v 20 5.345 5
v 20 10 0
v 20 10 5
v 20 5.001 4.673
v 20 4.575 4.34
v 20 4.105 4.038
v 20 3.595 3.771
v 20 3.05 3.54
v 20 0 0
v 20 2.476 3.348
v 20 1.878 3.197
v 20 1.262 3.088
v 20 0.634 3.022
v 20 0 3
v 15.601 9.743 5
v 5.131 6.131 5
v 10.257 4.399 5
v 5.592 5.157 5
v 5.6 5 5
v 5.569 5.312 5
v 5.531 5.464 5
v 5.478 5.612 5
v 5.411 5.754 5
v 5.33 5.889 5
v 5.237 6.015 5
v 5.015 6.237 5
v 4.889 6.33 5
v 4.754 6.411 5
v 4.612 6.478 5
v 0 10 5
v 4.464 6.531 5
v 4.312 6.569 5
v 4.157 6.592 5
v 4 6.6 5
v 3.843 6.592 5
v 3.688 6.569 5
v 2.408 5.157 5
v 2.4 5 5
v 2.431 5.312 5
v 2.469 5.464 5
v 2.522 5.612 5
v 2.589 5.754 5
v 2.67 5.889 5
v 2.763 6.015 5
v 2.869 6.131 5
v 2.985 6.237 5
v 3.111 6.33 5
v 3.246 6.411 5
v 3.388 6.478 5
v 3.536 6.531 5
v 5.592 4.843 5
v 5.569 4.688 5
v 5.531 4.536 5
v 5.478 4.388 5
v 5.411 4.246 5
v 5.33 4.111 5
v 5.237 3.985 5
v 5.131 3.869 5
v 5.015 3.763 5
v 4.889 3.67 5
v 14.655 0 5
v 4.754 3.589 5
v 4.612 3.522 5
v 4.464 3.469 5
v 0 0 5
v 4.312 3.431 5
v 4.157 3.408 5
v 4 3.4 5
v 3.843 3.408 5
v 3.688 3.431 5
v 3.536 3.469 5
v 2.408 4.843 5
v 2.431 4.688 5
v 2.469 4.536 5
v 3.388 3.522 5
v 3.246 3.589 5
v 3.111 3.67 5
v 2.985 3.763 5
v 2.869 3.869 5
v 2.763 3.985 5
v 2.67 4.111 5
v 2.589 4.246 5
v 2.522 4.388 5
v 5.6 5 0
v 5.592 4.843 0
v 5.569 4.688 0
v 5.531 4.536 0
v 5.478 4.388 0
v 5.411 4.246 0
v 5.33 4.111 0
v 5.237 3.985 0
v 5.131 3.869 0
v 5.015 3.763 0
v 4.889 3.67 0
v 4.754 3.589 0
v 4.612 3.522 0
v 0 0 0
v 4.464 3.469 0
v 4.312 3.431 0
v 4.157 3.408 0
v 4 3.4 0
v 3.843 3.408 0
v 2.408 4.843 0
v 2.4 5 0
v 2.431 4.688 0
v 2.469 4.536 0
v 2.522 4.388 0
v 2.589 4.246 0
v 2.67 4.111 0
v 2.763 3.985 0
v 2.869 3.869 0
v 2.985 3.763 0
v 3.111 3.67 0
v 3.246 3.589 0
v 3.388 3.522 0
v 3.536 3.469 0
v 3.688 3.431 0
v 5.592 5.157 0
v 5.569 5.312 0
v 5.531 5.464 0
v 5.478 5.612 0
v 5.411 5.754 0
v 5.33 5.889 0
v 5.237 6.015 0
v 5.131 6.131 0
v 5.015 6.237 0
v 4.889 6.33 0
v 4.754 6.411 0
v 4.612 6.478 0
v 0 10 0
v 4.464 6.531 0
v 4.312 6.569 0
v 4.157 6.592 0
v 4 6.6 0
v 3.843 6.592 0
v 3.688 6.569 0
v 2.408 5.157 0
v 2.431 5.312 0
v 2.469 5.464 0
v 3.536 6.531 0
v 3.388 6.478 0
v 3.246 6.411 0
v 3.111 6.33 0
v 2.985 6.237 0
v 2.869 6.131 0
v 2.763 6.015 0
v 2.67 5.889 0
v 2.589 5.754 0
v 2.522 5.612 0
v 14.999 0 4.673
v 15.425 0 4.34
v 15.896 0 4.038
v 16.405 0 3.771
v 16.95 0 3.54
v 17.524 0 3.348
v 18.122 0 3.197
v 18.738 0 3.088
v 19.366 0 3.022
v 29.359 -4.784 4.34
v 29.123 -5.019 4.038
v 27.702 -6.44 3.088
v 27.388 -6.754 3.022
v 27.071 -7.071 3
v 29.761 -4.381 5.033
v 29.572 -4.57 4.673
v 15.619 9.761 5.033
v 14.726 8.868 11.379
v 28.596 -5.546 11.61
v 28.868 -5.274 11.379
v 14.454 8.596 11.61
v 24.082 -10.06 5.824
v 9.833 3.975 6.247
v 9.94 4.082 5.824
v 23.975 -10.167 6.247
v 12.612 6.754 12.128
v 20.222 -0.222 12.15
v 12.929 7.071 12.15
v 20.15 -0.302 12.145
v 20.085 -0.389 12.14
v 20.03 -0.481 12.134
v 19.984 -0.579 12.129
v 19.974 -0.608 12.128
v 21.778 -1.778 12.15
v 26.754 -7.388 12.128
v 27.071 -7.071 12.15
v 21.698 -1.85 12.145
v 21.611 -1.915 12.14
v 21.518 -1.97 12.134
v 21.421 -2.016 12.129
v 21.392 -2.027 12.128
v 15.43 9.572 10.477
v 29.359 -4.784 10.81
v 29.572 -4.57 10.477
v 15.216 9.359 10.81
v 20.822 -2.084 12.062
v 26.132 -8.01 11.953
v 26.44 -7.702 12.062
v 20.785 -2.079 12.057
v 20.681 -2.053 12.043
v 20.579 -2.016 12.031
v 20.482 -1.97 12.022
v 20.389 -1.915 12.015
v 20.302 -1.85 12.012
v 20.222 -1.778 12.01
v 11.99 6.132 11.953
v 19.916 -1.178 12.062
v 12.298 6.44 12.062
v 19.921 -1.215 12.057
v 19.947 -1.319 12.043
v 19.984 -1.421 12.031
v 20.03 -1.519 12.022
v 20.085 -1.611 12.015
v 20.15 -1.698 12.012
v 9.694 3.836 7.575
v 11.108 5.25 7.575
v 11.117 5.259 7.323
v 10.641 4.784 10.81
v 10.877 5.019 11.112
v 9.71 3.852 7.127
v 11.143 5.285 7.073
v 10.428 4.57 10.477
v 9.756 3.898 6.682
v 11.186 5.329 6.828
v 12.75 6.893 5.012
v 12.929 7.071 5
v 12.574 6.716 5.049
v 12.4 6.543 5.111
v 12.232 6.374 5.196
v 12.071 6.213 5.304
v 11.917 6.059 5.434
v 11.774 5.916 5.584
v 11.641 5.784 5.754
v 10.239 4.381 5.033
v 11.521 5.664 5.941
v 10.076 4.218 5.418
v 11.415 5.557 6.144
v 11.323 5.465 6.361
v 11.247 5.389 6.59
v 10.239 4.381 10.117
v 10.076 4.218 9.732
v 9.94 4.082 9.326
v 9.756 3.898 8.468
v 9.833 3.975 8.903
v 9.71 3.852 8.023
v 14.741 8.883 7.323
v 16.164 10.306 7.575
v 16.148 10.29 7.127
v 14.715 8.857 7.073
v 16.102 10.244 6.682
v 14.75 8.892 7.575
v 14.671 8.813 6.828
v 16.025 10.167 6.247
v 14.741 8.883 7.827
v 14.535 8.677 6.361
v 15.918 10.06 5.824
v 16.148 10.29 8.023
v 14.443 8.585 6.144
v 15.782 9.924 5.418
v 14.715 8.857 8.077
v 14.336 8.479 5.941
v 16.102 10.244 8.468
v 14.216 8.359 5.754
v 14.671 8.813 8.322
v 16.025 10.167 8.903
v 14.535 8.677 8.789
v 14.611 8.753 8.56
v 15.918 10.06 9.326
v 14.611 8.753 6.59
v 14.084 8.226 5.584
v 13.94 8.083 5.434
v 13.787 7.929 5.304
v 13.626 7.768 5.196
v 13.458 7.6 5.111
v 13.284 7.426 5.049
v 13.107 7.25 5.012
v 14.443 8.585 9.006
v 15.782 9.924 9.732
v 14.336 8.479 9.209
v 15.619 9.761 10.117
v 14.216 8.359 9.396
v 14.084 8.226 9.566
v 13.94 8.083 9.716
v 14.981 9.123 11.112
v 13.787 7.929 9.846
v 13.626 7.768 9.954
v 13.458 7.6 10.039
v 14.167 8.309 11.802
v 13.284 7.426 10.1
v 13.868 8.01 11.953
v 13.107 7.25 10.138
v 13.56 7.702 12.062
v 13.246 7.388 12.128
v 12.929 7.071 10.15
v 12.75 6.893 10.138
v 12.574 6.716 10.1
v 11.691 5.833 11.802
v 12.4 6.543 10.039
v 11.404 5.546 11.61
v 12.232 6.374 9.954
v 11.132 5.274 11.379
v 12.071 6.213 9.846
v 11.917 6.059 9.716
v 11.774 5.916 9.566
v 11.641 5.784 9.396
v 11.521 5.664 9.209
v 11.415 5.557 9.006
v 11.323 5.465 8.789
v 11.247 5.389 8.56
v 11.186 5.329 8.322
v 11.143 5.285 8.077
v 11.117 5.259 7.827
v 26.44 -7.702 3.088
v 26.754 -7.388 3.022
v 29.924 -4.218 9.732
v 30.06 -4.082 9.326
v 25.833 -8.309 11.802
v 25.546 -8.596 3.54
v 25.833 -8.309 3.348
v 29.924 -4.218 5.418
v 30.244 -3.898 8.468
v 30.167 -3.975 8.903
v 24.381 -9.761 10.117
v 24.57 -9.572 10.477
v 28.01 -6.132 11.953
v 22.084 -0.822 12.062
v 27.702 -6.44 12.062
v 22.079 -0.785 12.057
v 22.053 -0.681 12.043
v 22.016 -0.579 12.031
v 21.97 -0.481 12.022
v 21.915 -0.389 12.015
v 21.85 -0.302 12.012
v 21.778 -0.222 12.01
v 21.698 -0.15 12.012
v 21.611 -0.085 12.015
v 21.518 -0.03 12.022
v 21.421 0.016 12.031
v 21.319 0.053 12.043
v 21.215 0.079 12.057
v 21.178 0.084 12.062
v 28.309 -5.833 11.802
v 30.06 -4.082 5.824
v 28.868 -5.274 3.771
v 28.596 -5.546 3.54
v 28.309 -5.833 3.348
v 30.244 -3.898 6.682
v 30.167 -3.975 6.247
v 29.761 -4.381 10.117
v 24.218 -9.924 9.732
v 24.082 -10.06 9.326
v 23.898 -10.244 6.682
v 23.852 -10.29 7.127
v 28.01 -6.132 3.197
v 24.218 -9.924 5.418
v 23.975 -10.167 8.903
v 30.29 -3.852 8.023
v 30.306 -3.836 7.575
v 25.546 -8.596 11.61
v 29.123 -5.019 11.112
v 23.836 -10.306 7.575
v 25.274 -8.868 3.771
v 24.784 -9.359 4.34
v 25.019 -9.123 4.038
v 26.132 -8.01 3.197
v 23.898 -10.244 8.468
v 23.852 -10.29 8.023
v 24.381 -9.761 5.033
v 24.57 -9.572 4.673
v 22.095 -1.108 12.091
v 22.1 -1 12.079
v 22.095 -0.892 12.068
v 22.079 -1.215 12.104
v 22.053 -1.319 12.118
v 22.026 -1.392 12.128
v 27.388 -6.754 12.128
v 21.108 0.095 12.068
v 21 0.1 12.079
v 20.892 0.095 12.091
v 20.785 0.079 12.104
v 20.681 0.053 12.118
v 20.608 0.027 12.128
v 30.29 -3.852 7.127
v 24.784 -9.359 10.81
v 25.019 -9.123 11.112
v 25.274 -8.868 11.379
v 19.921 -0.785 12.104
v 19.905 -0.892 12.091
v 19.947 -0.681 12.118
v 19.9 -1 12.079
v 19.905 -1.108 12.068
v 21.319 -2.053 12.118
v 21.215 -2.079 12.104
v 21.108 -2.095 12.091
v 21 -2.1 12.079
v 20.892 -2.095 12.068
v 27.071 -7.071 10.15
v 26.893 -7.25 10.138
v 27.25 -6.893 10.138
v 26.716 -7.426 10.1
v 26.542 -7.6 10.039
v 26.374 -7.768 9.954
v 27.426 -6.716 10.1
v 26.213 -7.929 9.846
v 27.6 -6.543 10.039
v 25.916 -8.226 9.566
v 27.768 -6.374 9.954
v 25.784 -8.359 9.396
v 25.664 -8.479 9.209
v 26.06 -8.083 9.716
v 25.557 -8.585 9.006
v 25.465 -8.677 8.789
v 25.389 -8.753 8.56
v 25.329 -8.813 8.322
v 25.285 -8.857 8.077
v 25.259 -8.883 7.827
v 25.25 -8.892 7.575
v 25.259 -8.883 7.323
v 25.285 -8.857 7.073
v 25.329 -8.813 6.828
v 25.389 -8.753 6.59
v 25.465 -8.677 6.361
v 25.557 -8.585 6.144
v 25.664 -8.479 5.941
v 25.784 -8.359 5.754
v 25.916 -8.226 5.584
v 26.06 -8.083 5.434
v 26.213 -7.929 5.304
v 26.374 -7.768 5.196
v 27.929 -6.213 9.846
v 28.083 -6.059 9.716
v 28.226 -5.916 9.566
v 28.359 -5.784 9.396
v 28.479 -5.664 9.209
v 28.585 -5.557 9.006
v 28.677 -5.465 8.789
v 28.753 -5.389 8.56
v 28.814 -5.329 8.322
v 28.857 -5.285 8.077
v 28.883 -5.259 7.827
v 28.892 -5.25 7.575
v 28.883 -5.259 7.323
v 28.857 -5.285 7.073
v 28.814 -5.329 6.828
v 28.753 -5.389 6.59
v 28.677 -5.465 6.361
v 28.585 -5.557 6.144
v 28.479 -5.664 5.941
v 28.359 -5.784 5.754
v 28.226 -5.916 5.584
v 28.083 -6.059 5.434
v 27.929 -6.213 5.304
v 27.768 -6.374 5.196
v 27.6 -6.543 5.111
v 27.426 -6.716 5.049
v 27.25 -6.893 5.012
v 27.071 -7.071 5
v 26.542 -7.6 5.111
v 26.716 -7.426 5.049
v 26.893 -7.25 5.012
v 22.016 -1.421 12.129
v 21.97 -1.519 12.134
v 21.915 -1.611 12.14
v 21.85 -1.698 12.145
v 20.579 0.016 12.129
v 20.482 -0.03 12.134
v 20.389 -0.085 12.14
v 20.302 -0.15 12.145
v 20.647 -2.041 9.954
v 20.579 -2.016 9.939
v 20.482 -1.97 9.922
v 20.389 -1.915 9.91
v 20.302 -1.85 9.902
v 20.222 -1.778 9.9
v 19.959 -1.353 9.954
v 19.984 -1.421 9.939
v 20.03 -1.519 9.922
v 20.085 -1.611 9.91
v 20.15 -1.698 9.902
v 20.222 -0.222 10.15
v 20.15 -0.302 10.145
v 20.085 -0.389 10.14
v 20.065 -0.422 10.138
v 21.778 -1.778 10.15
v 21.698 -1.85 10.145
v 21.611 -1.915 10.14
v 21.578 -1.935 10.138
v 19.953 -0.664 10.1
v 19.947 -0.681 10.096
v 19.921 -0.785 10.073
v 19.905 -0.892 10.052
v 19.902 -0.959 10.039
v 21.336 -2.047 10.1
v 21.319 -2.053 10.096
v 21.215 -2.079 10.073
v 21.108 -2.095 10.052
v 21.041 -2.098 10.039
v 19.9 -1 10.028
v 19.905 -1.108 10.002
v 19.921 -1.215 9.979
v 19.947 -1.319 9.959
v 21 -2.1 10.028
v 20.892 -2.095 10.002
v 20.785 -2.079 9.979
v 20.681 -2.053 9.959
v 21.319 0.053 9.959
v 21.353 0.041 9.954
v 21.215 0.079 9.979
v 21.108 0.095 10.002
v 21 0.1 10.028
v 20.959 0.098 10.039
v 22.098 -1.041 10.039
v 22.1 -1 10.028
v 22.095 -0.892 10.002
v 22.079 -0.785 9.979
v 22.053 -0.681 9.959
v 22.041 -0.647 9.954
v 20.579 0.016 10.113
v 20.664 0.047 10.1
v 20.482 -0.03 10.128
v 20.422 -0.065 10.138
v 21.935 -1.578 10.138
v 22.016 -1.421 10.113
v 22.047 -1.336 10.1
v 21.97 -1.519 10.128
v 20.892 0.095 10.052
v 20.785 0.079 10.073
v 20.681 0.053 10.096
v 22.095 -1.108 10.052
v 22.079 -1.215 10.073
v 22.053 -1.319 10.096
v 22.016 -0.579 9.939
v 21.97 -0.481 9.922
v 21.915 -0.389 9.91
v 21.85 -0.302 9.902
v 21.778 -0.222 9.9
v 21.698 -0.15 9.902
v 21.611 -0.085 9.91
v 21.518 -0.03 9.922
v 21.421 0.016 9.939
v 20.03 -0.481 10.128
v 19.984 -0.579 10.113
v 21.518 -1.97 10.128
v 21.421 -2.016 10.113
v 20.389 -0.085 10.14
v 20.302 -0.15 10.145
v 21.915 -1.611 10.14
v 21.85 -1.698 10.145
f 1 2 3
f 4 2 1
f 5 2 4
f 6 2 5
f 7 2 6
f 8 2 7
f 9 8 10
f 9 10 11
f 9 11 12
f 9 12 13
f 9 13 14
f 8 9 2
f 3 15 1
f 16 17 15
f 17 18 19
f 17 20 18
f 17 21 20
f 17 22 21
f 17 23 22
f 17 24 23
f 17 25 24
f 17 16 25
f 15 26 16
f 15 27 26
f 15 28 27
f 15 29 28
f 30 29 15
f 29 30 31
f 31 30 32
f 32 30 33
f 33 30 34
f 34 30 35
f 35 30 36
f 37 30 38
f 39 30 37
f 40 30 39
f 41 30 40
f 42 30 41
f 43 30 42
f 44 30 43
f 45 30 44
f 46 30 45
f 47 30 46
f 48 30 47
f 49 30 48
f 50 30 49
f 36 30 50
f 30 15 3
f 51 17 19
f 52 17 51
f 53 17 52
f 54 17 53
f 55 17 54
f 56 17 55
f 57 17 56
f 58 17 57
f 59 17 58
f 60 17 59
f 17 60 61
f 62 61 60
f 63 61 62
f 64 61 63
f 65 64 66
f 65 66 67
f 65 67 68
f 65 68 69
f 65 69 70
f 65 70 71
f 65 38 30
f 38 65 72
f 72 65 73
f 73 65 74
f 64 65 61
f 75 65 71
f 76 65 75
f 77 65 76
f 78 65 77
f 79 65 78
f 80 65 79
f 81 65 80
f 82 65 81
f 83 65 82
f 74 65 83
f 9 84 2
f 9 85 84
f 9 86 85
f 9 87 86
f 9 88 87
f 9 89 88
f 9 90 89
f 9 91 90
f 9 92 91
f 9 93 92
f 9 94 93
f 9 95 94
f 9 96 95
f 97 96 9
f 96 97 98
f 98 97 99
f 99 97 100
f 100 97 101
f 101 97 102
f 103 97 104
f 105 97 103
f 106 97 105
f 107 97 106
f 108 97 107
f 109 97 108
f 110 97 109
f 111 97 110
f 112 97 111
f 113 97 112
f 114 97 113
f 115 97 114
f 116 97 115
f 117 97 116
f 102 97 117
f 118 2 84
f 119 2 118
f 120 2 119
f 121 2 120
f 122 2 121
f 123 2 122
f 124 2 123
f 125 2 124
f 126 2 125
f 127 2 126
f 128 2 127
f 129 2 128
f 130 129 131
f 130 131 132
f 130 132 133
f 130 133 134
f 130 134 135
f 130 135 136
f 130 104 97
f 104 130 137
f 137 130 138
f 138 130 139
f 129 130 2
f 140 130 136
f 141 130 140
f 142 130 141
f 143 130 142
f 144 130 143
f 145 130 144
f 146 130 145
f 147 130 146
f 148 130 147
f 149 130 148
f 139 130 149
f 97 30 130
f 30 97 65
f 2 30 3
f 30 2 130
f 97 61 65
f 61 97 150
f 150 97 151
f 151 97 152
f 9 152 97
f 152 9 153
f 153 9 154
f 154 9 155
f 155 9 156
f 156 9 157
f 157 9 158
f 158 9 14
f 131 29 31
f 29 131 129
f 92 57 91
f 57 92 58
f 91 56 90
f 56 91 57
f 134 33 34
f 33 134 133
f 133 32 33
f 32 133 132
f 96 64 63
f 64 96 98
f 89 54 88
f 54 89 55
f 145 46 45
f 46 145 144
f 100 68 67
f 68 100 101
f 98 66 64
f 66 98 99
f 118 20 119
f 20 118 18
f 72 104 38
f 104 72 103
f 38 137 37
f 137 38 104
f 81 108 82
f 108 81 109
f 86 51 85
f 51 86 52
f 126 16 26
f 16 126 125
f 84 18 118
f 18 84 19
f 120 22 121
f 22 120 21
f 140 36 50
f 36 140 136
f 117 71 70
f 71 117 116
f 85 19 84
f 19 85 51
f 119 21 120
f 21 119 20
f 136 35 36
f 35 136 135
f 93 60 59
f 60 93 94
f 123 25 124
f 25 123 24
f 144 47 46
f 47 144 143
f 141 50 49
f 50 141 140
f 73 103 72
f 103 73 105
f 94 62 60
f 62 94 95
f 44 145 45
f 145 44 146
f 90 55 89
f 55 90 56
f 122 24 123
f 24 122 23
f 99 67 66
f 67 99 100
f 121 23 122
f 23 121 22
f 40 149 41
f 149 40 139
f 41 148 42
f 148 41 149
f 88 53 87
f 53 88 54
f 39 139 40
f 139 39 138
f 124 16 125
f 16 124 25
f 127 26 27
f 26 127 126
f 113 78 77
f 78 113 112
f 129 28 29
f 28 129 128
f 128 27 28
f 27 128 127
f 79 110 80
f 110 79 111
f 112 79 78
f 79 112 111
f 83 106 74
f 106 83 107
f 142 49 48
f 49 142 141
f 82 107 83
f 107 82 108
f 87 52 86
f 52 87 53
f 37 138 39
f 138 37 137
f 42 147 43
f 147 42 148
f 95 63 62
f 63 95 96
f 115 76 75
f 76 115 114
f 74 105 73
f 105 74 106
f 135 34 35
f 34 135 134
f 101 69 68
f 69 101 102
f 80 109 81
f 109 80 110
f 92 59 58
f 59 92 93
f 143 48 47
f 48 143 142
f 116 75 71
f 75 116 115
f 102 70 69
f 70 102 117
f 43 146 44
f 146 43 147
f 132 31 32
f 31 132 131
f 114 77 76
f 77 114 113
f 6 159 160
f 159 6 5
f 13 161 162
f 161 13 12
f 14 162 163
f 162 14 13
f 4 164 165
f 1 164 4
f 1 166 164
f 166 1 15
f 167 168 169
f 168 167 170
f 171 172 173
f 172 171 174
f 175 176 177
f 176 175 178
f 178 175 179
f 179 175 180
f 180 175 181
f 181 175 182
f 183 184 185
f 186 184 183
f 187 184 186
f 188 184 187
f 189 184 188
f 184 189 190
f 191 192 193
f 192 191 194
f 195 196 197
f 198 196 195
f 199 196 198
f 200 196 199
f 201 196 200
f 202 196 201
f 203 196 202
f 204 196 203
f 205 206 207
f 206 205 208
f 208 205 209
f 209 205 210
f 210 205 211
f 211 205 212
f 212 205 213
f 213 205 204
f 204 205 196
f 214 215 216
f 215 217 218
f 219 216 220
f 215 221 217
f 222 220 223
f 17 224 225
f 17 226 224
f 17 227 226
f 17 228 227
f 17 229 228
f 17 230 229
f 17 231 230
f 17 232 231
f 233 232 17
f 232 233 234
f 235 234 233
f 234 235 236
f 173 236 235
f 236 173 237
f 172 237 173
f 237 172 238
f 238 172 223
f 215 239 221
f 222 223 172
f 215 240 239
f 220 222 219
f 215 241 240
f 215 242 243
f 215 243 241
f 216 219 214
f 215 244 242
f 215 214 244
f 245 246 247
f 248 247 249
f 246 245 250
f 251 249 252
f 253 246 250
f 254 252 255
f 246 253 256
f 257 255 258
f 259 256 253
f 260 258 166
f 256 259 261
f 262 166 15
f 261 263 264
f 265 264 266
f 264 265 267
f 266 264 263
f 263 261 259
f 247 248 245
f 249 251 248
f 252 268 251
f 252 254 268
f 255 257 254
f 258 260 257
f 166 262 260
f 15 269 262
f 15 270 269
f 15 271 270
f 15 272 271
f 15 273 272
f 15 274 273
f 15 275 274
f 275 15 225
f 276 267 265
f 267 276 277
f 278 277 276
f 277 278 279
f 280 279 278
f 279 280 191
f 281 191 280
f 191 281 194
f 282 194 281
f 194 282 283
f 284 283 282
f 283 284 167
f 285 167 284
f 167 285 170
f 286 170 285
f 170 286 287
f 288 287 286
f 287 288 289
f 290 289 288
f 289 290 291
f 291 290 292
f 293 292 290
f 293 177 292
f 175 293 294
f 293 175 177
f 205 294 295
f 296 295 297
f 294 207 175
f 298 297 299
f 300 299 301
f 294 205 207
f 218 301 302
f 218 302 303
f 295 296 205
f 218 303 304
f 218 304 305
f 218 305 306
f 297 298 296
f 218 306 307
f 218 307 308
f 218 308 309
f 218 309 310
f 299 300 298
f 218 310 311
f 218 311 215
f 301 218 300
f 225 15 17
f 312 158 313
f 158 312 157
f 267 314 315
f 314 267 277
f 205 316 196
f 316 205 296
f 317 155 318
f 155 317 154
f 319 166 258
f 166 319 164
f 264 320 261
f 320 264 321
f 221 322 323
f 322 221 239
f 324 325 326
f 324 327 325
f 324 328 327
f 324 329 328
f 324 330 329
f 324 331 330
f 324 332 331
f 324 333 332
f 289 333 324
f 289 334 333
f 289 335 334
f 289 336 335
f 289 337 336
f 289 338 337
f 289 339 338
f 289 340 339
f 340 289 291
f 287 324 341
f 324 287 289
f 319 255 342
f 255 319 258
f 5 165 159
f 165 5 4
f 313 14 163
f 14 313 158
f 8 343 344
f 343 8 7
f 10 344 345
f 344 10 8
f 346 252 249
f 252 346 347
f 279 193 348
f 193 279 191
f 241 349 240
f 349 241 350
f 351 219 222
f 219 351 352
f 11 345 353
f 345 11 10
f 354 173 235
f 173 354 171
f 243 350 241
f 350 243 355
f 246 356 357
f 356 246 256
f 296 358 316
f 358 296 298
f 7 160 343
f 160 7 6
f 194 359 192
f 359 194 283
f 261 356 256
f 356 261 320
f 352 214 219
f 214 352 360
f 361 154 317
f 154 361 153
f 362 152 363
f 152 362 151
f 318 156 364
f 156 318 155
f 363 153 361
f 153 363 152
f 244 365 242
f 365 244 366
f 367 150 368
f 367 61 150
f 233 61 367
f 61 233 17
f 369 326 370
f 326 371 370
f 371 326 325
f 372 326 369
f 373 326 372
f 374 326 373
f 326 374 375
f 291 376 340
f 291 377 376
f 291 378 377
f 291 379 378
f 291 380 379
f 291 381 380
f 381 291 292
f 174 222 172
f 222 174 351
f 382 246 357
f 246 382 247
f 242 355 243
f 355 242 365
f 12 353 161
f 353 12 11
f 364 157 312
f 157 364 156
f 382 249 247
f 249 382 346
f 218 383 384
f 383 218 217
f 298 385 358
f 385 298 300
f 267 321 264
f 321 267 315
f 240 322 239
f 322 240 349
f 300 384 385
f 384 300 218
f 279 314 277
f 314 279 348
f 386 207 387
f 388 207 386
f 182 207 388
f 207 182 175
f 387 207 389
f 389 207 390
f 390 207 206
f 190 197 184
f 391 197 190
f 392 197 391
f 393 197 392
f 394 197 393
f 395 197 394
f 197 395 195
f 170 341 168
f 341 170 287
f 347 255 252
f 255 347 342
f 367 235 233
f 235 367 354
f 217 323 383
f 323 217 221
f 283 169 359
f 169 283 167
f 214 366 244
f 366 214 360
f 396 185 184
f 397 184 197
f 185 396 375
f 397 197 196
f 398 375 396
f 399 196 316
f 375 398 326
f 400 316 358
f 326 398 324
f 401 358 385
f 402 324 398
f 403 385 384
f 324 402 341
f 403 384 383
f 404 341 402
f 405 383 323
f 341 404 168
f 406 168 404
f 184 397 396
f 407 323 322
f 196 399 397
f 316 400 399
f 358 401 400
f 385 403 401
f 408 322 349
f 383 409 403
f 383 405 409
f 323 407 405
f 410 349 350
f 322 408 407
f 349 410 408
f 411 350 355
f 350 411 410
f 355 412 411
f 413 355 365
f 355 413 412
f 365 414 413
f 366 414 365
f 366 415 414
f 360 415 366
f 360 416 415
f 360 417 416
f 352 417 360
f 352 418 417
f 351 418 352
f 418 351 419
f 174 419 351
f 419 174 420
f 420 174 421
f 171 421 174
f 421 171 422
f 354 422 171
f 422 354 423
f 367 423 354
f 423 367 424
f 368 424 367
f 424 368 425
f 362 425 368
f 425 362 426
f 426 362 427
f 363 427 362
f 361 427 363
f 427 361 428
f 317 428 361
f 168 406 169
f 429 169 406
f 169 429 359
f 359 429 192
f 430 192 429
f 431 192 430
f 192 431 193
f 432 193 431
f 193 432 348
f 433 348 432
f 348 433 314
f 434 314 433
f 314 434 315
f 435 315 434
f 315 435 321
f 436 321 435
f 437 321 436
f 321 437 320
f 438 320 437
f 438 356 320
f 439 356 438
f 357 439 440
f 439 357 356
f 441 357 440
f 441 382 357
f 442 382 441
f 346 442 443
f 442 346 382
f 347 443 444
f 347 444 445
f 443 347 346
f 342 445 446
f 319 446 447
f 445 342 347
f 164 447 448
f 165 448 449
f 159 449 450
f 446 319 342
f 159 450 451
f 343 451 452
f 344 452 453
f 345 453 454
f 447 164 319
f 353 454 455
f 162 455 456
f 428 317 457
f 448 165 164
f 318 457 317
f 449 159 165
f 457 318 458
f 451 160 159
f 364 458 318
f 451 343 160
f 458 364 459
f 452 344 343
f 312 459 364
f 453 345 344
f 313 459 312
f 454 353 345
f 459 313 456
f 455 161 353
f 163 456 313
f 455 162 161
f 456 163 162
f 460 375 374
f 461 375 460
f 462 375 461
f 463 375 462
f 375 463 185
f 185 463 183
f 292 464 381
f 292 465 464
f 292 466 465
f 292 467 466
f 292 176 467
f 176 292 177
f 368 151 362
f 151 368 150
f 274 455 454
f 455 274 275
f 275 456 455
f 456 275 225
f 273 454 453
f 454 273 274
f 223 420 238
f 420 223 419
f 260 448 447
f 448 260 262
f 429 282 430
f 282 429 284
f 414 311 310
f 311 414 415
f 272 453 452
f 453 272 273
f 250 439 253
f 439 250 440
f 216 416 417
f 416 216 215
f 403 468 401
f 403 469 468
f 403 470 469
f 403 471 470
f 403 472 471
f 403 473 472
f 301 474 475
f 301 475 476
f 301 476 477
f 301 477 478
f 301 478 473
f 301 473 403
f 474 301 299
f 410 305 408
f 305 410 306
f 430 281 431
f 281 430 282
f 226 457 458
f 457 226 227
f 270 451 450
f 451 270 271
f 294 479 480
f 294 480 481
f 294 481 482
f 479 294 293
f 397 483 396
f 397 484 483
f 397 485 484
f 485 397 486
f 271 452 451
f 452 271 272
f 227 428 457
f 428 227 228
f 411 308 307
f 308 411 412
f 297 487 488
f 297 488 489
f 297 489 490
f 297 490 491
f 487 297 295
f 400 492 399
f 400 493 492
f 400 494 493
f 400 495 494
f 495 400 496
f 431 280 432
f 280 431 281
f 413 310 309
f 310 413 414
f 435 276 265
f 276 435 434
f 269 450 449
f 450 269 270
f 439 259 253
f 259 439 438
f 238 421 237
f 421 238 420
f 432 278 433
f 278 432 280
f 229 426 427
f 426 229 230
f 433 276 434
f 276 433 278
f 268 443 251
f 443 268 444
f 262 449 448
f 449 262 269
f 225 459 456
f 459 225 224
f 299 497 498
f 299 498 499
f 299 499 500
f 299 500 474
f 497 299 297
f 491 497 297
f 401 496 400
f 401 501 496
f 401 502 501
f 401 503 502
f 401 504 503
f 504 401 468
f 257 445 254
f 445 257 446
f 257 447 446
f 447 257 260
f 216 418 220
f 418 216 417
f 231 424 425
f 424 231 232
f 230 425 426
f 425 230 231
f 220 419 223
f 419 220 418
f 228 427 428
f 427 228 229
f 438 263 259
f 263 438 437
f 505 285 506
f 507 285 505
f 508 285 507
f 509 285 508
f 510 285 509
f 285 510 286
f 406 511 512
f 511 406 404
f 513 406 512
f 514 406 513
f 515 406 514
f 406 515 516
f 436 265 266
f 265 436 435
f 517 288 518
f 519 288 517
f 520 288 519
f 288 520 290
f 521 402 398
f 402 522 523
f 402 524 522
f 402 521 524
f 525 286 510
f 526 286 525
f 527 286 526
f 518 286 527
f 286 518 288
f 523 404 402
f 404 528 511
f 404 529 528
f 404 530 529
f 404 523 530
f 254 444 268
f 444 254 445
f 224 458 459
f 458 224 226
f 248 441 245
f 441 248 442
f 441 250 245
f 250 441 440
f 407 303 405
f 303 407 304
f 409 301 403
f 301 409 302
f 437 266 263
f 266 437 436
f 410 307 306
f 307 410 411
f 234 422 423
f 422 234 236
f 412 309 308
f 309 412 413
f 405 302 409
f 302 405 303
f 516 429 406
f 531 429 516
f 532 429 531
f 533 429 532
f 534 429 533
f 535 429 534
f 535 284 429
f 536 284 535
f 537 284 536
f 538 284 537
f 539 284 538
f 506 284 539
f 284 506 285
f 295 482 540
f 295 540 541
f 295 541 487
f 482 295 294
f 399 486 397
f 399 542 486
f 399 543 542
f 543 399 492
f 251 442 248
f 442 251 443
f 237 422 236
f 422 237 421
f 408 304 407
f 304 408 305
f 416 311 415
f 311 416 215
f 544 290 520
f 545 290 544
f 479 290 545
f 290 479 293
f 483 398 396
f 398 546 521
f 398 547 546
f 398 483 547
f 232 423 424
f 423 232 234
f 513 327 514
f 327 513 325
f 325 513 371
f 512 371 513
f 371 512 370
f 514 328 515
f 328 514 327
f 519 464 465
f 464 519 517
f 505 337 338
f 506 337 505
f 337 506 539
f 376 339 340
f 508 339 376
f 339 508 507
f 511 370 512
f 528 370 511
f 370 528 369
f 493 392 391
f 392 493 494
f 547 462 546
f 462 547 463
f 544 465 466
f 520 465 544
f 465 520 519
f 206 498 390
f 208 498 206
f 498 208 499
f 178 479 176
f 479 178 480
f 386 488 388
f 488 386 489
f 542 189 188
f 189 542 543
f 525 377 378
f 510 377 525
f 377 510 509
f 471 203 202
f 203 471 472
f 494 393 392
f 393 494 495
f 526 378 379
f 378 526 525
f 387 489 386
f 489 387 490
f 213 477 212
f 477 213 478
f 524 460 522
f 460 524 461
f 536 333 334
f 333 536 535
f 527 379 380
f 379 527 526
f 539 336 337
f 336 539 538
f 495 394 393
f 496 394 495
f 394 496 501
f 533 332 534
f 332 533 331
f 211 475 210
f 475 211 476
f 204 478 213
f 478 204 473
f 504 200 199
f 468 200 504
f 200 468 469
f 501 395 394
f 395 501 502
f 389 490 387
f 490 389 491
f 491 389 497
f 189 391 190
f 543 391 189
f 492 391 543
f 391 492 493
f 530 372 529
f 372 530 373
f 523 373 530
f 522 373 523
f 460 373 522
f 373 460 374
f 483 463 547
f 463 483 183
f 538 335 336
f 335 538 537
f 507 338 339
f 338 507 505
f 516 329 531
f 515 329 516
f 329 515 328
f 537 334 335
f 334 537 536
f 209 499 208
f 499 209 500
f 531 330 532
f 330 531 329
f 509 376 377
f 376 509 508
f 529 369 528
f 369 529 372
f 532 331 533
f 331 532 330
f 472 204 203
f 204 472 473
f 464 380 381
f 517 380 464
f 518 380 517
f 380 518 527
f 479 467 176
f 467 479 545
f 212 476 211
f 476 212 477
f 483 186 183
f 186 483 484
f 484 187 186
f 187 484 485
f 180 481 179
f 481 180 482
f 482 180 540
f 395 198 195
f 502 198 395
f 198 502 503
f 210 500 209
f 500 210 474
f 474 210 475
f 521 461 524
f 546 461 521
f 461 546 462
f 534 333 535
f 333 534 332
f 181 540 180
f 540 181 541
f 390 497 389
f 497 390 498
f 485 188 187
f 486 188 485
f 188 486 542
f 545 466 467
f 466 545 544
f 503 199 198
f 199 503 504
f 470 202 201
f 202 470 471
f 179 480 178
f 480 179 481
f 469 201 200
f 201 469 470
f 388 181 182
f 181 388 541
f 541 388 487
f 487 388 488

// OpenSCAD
// Plate with two tube sockets aimed toward rectangle corners, slightly recessed into the plate (for 5 mm CF tubes) and an M2 hole in the base
// All units in mm

// --- Plate ---
length = 20; // X (mm)
width  = 10; // Y (mm)
thick  = 5;  // Z (mm)

// --- Tube/socket params ---
tube_id        = 5;      // carbon fiber tube outer diameter
clearance      = 0.15;  // fit clearance for insertion
socket_wall    = 2;      // wall thickness around the tube
socket_len     = 20;     // length of each socket along its axis
recess_depth   = 2;      // how far sockets sit inside the plate

// --- Hole params ---
m2_diameter      = 3.2;   // base-plate hole diameter (~2.2 for true M2 clearance)
m2_top_diameter  = 2.2;   // true M2 clearance for the vertical hole at socket top
screw_depth      = socket_wall + 1.2; // how deep the top hole goes down from socket top (tweak as needed)

// --- Quality settings ---
$fn = 64; // ensure circles are smooth

socket_id = tube_id + clearance;      // inner diameter of socket
socket_od = socket_id + 2*socket_wall; // outer diameter
r_out     = socket_od/2;
r_in      = socket_id/2;

module plate() {
  difference() {
    cube([length, width, thick], center=false);
    // M2 hole at center of plate (offset 5 mm from geometric center in X per your original)
    translate([length/2-6, width/2, 0])
      cylinder(d=m2_diameter, h=thick+0.1, center=false);
  }
}

// Generic horizontal socket pointing at an in‑plane angle (deg) relative to +X
// Centered at (xpos, ypos); partially recessed into the plate
module socket_dir(angle_deg, len, xpos, ypos) {
  translate([xpos, ypos, thick + r_out - recess_depth])
    rotate([0,0,angle_deg])       // rotate around Z to desired heading in XY
      rotate([0,90,0])            // lay cylinder horizontal (axis along +X before Z-rot)
        difference() {
          cylinder(h=len, r=r_out, center=true);
          cylinder(h=len+0.2, r=r_in, center=true);
        }
}

// Vertical M2 hole drilled from the very top of the socket downward by screw_depth
// Place at the same (xpos, ypos) used for the socket.
module socket_top_hole(xpos, ypos) {
  // Top of socket in world Z is: (socket center Z) + r_out
  // socket center Z = thick + r_out - recess_depth
  z_top = thick + 2*r_out - recess_depth;
  translate([xpos, ypos, z_top - screw_depth])
    cylinder(d=m2_top_diameter, h=screw_depth + 0.2, center=false);
}

// --- Tube headings (exactly 90° apart) ---
//ang_A = atan2(width,  length-5); // base direction
//ang_B = ang_A + 90;              // exactly perpendicular to ang_A
ang_A = 45;
ang_B = -45;
// --- Placement ---
plate_centre = [length/2+7, width/2];

// Socket XY positions (match the ones used below so we can reuse for the holes)
sock1_pos = [plate_centre[0]+3, plate_centre[1]+5];
sock2_pos = [plate_centre[0]+3, plate_centre[1]-5];

difference() {
  // 1) Build plate + sockets
  union() {
    plate();
    //socket_dir(ang_A, socket_len, sock1_pos[0], sock1_pos[1]);
    socket_dir(ang_B, socket_len, sock2_pos[0], sock2_pos[1]);
  }

  // 2) Subtract vertical M2 holes "on top" of each socket
  socket_top_hole(sock1_pos[0]+1, sock1_pos[1]+1);
  socket_top_hole(sock2_pos[0]+1, sock2_pos[1]-1);
}

// Notes:
// - Increase `screw_depth` if you want the screw to reach the tube ID further.
//   It only needs to pass the outer wall (≈ socket_wall) to bite the tube.
// - If you want a threaded boss, keep this hole at 1.6–1.7 mm and tap it;
//   otherwise 2.2 mm is good for free clearance.
// - To move the holes with the sockets, only adjust sock1_pos / sock2_pos once.
